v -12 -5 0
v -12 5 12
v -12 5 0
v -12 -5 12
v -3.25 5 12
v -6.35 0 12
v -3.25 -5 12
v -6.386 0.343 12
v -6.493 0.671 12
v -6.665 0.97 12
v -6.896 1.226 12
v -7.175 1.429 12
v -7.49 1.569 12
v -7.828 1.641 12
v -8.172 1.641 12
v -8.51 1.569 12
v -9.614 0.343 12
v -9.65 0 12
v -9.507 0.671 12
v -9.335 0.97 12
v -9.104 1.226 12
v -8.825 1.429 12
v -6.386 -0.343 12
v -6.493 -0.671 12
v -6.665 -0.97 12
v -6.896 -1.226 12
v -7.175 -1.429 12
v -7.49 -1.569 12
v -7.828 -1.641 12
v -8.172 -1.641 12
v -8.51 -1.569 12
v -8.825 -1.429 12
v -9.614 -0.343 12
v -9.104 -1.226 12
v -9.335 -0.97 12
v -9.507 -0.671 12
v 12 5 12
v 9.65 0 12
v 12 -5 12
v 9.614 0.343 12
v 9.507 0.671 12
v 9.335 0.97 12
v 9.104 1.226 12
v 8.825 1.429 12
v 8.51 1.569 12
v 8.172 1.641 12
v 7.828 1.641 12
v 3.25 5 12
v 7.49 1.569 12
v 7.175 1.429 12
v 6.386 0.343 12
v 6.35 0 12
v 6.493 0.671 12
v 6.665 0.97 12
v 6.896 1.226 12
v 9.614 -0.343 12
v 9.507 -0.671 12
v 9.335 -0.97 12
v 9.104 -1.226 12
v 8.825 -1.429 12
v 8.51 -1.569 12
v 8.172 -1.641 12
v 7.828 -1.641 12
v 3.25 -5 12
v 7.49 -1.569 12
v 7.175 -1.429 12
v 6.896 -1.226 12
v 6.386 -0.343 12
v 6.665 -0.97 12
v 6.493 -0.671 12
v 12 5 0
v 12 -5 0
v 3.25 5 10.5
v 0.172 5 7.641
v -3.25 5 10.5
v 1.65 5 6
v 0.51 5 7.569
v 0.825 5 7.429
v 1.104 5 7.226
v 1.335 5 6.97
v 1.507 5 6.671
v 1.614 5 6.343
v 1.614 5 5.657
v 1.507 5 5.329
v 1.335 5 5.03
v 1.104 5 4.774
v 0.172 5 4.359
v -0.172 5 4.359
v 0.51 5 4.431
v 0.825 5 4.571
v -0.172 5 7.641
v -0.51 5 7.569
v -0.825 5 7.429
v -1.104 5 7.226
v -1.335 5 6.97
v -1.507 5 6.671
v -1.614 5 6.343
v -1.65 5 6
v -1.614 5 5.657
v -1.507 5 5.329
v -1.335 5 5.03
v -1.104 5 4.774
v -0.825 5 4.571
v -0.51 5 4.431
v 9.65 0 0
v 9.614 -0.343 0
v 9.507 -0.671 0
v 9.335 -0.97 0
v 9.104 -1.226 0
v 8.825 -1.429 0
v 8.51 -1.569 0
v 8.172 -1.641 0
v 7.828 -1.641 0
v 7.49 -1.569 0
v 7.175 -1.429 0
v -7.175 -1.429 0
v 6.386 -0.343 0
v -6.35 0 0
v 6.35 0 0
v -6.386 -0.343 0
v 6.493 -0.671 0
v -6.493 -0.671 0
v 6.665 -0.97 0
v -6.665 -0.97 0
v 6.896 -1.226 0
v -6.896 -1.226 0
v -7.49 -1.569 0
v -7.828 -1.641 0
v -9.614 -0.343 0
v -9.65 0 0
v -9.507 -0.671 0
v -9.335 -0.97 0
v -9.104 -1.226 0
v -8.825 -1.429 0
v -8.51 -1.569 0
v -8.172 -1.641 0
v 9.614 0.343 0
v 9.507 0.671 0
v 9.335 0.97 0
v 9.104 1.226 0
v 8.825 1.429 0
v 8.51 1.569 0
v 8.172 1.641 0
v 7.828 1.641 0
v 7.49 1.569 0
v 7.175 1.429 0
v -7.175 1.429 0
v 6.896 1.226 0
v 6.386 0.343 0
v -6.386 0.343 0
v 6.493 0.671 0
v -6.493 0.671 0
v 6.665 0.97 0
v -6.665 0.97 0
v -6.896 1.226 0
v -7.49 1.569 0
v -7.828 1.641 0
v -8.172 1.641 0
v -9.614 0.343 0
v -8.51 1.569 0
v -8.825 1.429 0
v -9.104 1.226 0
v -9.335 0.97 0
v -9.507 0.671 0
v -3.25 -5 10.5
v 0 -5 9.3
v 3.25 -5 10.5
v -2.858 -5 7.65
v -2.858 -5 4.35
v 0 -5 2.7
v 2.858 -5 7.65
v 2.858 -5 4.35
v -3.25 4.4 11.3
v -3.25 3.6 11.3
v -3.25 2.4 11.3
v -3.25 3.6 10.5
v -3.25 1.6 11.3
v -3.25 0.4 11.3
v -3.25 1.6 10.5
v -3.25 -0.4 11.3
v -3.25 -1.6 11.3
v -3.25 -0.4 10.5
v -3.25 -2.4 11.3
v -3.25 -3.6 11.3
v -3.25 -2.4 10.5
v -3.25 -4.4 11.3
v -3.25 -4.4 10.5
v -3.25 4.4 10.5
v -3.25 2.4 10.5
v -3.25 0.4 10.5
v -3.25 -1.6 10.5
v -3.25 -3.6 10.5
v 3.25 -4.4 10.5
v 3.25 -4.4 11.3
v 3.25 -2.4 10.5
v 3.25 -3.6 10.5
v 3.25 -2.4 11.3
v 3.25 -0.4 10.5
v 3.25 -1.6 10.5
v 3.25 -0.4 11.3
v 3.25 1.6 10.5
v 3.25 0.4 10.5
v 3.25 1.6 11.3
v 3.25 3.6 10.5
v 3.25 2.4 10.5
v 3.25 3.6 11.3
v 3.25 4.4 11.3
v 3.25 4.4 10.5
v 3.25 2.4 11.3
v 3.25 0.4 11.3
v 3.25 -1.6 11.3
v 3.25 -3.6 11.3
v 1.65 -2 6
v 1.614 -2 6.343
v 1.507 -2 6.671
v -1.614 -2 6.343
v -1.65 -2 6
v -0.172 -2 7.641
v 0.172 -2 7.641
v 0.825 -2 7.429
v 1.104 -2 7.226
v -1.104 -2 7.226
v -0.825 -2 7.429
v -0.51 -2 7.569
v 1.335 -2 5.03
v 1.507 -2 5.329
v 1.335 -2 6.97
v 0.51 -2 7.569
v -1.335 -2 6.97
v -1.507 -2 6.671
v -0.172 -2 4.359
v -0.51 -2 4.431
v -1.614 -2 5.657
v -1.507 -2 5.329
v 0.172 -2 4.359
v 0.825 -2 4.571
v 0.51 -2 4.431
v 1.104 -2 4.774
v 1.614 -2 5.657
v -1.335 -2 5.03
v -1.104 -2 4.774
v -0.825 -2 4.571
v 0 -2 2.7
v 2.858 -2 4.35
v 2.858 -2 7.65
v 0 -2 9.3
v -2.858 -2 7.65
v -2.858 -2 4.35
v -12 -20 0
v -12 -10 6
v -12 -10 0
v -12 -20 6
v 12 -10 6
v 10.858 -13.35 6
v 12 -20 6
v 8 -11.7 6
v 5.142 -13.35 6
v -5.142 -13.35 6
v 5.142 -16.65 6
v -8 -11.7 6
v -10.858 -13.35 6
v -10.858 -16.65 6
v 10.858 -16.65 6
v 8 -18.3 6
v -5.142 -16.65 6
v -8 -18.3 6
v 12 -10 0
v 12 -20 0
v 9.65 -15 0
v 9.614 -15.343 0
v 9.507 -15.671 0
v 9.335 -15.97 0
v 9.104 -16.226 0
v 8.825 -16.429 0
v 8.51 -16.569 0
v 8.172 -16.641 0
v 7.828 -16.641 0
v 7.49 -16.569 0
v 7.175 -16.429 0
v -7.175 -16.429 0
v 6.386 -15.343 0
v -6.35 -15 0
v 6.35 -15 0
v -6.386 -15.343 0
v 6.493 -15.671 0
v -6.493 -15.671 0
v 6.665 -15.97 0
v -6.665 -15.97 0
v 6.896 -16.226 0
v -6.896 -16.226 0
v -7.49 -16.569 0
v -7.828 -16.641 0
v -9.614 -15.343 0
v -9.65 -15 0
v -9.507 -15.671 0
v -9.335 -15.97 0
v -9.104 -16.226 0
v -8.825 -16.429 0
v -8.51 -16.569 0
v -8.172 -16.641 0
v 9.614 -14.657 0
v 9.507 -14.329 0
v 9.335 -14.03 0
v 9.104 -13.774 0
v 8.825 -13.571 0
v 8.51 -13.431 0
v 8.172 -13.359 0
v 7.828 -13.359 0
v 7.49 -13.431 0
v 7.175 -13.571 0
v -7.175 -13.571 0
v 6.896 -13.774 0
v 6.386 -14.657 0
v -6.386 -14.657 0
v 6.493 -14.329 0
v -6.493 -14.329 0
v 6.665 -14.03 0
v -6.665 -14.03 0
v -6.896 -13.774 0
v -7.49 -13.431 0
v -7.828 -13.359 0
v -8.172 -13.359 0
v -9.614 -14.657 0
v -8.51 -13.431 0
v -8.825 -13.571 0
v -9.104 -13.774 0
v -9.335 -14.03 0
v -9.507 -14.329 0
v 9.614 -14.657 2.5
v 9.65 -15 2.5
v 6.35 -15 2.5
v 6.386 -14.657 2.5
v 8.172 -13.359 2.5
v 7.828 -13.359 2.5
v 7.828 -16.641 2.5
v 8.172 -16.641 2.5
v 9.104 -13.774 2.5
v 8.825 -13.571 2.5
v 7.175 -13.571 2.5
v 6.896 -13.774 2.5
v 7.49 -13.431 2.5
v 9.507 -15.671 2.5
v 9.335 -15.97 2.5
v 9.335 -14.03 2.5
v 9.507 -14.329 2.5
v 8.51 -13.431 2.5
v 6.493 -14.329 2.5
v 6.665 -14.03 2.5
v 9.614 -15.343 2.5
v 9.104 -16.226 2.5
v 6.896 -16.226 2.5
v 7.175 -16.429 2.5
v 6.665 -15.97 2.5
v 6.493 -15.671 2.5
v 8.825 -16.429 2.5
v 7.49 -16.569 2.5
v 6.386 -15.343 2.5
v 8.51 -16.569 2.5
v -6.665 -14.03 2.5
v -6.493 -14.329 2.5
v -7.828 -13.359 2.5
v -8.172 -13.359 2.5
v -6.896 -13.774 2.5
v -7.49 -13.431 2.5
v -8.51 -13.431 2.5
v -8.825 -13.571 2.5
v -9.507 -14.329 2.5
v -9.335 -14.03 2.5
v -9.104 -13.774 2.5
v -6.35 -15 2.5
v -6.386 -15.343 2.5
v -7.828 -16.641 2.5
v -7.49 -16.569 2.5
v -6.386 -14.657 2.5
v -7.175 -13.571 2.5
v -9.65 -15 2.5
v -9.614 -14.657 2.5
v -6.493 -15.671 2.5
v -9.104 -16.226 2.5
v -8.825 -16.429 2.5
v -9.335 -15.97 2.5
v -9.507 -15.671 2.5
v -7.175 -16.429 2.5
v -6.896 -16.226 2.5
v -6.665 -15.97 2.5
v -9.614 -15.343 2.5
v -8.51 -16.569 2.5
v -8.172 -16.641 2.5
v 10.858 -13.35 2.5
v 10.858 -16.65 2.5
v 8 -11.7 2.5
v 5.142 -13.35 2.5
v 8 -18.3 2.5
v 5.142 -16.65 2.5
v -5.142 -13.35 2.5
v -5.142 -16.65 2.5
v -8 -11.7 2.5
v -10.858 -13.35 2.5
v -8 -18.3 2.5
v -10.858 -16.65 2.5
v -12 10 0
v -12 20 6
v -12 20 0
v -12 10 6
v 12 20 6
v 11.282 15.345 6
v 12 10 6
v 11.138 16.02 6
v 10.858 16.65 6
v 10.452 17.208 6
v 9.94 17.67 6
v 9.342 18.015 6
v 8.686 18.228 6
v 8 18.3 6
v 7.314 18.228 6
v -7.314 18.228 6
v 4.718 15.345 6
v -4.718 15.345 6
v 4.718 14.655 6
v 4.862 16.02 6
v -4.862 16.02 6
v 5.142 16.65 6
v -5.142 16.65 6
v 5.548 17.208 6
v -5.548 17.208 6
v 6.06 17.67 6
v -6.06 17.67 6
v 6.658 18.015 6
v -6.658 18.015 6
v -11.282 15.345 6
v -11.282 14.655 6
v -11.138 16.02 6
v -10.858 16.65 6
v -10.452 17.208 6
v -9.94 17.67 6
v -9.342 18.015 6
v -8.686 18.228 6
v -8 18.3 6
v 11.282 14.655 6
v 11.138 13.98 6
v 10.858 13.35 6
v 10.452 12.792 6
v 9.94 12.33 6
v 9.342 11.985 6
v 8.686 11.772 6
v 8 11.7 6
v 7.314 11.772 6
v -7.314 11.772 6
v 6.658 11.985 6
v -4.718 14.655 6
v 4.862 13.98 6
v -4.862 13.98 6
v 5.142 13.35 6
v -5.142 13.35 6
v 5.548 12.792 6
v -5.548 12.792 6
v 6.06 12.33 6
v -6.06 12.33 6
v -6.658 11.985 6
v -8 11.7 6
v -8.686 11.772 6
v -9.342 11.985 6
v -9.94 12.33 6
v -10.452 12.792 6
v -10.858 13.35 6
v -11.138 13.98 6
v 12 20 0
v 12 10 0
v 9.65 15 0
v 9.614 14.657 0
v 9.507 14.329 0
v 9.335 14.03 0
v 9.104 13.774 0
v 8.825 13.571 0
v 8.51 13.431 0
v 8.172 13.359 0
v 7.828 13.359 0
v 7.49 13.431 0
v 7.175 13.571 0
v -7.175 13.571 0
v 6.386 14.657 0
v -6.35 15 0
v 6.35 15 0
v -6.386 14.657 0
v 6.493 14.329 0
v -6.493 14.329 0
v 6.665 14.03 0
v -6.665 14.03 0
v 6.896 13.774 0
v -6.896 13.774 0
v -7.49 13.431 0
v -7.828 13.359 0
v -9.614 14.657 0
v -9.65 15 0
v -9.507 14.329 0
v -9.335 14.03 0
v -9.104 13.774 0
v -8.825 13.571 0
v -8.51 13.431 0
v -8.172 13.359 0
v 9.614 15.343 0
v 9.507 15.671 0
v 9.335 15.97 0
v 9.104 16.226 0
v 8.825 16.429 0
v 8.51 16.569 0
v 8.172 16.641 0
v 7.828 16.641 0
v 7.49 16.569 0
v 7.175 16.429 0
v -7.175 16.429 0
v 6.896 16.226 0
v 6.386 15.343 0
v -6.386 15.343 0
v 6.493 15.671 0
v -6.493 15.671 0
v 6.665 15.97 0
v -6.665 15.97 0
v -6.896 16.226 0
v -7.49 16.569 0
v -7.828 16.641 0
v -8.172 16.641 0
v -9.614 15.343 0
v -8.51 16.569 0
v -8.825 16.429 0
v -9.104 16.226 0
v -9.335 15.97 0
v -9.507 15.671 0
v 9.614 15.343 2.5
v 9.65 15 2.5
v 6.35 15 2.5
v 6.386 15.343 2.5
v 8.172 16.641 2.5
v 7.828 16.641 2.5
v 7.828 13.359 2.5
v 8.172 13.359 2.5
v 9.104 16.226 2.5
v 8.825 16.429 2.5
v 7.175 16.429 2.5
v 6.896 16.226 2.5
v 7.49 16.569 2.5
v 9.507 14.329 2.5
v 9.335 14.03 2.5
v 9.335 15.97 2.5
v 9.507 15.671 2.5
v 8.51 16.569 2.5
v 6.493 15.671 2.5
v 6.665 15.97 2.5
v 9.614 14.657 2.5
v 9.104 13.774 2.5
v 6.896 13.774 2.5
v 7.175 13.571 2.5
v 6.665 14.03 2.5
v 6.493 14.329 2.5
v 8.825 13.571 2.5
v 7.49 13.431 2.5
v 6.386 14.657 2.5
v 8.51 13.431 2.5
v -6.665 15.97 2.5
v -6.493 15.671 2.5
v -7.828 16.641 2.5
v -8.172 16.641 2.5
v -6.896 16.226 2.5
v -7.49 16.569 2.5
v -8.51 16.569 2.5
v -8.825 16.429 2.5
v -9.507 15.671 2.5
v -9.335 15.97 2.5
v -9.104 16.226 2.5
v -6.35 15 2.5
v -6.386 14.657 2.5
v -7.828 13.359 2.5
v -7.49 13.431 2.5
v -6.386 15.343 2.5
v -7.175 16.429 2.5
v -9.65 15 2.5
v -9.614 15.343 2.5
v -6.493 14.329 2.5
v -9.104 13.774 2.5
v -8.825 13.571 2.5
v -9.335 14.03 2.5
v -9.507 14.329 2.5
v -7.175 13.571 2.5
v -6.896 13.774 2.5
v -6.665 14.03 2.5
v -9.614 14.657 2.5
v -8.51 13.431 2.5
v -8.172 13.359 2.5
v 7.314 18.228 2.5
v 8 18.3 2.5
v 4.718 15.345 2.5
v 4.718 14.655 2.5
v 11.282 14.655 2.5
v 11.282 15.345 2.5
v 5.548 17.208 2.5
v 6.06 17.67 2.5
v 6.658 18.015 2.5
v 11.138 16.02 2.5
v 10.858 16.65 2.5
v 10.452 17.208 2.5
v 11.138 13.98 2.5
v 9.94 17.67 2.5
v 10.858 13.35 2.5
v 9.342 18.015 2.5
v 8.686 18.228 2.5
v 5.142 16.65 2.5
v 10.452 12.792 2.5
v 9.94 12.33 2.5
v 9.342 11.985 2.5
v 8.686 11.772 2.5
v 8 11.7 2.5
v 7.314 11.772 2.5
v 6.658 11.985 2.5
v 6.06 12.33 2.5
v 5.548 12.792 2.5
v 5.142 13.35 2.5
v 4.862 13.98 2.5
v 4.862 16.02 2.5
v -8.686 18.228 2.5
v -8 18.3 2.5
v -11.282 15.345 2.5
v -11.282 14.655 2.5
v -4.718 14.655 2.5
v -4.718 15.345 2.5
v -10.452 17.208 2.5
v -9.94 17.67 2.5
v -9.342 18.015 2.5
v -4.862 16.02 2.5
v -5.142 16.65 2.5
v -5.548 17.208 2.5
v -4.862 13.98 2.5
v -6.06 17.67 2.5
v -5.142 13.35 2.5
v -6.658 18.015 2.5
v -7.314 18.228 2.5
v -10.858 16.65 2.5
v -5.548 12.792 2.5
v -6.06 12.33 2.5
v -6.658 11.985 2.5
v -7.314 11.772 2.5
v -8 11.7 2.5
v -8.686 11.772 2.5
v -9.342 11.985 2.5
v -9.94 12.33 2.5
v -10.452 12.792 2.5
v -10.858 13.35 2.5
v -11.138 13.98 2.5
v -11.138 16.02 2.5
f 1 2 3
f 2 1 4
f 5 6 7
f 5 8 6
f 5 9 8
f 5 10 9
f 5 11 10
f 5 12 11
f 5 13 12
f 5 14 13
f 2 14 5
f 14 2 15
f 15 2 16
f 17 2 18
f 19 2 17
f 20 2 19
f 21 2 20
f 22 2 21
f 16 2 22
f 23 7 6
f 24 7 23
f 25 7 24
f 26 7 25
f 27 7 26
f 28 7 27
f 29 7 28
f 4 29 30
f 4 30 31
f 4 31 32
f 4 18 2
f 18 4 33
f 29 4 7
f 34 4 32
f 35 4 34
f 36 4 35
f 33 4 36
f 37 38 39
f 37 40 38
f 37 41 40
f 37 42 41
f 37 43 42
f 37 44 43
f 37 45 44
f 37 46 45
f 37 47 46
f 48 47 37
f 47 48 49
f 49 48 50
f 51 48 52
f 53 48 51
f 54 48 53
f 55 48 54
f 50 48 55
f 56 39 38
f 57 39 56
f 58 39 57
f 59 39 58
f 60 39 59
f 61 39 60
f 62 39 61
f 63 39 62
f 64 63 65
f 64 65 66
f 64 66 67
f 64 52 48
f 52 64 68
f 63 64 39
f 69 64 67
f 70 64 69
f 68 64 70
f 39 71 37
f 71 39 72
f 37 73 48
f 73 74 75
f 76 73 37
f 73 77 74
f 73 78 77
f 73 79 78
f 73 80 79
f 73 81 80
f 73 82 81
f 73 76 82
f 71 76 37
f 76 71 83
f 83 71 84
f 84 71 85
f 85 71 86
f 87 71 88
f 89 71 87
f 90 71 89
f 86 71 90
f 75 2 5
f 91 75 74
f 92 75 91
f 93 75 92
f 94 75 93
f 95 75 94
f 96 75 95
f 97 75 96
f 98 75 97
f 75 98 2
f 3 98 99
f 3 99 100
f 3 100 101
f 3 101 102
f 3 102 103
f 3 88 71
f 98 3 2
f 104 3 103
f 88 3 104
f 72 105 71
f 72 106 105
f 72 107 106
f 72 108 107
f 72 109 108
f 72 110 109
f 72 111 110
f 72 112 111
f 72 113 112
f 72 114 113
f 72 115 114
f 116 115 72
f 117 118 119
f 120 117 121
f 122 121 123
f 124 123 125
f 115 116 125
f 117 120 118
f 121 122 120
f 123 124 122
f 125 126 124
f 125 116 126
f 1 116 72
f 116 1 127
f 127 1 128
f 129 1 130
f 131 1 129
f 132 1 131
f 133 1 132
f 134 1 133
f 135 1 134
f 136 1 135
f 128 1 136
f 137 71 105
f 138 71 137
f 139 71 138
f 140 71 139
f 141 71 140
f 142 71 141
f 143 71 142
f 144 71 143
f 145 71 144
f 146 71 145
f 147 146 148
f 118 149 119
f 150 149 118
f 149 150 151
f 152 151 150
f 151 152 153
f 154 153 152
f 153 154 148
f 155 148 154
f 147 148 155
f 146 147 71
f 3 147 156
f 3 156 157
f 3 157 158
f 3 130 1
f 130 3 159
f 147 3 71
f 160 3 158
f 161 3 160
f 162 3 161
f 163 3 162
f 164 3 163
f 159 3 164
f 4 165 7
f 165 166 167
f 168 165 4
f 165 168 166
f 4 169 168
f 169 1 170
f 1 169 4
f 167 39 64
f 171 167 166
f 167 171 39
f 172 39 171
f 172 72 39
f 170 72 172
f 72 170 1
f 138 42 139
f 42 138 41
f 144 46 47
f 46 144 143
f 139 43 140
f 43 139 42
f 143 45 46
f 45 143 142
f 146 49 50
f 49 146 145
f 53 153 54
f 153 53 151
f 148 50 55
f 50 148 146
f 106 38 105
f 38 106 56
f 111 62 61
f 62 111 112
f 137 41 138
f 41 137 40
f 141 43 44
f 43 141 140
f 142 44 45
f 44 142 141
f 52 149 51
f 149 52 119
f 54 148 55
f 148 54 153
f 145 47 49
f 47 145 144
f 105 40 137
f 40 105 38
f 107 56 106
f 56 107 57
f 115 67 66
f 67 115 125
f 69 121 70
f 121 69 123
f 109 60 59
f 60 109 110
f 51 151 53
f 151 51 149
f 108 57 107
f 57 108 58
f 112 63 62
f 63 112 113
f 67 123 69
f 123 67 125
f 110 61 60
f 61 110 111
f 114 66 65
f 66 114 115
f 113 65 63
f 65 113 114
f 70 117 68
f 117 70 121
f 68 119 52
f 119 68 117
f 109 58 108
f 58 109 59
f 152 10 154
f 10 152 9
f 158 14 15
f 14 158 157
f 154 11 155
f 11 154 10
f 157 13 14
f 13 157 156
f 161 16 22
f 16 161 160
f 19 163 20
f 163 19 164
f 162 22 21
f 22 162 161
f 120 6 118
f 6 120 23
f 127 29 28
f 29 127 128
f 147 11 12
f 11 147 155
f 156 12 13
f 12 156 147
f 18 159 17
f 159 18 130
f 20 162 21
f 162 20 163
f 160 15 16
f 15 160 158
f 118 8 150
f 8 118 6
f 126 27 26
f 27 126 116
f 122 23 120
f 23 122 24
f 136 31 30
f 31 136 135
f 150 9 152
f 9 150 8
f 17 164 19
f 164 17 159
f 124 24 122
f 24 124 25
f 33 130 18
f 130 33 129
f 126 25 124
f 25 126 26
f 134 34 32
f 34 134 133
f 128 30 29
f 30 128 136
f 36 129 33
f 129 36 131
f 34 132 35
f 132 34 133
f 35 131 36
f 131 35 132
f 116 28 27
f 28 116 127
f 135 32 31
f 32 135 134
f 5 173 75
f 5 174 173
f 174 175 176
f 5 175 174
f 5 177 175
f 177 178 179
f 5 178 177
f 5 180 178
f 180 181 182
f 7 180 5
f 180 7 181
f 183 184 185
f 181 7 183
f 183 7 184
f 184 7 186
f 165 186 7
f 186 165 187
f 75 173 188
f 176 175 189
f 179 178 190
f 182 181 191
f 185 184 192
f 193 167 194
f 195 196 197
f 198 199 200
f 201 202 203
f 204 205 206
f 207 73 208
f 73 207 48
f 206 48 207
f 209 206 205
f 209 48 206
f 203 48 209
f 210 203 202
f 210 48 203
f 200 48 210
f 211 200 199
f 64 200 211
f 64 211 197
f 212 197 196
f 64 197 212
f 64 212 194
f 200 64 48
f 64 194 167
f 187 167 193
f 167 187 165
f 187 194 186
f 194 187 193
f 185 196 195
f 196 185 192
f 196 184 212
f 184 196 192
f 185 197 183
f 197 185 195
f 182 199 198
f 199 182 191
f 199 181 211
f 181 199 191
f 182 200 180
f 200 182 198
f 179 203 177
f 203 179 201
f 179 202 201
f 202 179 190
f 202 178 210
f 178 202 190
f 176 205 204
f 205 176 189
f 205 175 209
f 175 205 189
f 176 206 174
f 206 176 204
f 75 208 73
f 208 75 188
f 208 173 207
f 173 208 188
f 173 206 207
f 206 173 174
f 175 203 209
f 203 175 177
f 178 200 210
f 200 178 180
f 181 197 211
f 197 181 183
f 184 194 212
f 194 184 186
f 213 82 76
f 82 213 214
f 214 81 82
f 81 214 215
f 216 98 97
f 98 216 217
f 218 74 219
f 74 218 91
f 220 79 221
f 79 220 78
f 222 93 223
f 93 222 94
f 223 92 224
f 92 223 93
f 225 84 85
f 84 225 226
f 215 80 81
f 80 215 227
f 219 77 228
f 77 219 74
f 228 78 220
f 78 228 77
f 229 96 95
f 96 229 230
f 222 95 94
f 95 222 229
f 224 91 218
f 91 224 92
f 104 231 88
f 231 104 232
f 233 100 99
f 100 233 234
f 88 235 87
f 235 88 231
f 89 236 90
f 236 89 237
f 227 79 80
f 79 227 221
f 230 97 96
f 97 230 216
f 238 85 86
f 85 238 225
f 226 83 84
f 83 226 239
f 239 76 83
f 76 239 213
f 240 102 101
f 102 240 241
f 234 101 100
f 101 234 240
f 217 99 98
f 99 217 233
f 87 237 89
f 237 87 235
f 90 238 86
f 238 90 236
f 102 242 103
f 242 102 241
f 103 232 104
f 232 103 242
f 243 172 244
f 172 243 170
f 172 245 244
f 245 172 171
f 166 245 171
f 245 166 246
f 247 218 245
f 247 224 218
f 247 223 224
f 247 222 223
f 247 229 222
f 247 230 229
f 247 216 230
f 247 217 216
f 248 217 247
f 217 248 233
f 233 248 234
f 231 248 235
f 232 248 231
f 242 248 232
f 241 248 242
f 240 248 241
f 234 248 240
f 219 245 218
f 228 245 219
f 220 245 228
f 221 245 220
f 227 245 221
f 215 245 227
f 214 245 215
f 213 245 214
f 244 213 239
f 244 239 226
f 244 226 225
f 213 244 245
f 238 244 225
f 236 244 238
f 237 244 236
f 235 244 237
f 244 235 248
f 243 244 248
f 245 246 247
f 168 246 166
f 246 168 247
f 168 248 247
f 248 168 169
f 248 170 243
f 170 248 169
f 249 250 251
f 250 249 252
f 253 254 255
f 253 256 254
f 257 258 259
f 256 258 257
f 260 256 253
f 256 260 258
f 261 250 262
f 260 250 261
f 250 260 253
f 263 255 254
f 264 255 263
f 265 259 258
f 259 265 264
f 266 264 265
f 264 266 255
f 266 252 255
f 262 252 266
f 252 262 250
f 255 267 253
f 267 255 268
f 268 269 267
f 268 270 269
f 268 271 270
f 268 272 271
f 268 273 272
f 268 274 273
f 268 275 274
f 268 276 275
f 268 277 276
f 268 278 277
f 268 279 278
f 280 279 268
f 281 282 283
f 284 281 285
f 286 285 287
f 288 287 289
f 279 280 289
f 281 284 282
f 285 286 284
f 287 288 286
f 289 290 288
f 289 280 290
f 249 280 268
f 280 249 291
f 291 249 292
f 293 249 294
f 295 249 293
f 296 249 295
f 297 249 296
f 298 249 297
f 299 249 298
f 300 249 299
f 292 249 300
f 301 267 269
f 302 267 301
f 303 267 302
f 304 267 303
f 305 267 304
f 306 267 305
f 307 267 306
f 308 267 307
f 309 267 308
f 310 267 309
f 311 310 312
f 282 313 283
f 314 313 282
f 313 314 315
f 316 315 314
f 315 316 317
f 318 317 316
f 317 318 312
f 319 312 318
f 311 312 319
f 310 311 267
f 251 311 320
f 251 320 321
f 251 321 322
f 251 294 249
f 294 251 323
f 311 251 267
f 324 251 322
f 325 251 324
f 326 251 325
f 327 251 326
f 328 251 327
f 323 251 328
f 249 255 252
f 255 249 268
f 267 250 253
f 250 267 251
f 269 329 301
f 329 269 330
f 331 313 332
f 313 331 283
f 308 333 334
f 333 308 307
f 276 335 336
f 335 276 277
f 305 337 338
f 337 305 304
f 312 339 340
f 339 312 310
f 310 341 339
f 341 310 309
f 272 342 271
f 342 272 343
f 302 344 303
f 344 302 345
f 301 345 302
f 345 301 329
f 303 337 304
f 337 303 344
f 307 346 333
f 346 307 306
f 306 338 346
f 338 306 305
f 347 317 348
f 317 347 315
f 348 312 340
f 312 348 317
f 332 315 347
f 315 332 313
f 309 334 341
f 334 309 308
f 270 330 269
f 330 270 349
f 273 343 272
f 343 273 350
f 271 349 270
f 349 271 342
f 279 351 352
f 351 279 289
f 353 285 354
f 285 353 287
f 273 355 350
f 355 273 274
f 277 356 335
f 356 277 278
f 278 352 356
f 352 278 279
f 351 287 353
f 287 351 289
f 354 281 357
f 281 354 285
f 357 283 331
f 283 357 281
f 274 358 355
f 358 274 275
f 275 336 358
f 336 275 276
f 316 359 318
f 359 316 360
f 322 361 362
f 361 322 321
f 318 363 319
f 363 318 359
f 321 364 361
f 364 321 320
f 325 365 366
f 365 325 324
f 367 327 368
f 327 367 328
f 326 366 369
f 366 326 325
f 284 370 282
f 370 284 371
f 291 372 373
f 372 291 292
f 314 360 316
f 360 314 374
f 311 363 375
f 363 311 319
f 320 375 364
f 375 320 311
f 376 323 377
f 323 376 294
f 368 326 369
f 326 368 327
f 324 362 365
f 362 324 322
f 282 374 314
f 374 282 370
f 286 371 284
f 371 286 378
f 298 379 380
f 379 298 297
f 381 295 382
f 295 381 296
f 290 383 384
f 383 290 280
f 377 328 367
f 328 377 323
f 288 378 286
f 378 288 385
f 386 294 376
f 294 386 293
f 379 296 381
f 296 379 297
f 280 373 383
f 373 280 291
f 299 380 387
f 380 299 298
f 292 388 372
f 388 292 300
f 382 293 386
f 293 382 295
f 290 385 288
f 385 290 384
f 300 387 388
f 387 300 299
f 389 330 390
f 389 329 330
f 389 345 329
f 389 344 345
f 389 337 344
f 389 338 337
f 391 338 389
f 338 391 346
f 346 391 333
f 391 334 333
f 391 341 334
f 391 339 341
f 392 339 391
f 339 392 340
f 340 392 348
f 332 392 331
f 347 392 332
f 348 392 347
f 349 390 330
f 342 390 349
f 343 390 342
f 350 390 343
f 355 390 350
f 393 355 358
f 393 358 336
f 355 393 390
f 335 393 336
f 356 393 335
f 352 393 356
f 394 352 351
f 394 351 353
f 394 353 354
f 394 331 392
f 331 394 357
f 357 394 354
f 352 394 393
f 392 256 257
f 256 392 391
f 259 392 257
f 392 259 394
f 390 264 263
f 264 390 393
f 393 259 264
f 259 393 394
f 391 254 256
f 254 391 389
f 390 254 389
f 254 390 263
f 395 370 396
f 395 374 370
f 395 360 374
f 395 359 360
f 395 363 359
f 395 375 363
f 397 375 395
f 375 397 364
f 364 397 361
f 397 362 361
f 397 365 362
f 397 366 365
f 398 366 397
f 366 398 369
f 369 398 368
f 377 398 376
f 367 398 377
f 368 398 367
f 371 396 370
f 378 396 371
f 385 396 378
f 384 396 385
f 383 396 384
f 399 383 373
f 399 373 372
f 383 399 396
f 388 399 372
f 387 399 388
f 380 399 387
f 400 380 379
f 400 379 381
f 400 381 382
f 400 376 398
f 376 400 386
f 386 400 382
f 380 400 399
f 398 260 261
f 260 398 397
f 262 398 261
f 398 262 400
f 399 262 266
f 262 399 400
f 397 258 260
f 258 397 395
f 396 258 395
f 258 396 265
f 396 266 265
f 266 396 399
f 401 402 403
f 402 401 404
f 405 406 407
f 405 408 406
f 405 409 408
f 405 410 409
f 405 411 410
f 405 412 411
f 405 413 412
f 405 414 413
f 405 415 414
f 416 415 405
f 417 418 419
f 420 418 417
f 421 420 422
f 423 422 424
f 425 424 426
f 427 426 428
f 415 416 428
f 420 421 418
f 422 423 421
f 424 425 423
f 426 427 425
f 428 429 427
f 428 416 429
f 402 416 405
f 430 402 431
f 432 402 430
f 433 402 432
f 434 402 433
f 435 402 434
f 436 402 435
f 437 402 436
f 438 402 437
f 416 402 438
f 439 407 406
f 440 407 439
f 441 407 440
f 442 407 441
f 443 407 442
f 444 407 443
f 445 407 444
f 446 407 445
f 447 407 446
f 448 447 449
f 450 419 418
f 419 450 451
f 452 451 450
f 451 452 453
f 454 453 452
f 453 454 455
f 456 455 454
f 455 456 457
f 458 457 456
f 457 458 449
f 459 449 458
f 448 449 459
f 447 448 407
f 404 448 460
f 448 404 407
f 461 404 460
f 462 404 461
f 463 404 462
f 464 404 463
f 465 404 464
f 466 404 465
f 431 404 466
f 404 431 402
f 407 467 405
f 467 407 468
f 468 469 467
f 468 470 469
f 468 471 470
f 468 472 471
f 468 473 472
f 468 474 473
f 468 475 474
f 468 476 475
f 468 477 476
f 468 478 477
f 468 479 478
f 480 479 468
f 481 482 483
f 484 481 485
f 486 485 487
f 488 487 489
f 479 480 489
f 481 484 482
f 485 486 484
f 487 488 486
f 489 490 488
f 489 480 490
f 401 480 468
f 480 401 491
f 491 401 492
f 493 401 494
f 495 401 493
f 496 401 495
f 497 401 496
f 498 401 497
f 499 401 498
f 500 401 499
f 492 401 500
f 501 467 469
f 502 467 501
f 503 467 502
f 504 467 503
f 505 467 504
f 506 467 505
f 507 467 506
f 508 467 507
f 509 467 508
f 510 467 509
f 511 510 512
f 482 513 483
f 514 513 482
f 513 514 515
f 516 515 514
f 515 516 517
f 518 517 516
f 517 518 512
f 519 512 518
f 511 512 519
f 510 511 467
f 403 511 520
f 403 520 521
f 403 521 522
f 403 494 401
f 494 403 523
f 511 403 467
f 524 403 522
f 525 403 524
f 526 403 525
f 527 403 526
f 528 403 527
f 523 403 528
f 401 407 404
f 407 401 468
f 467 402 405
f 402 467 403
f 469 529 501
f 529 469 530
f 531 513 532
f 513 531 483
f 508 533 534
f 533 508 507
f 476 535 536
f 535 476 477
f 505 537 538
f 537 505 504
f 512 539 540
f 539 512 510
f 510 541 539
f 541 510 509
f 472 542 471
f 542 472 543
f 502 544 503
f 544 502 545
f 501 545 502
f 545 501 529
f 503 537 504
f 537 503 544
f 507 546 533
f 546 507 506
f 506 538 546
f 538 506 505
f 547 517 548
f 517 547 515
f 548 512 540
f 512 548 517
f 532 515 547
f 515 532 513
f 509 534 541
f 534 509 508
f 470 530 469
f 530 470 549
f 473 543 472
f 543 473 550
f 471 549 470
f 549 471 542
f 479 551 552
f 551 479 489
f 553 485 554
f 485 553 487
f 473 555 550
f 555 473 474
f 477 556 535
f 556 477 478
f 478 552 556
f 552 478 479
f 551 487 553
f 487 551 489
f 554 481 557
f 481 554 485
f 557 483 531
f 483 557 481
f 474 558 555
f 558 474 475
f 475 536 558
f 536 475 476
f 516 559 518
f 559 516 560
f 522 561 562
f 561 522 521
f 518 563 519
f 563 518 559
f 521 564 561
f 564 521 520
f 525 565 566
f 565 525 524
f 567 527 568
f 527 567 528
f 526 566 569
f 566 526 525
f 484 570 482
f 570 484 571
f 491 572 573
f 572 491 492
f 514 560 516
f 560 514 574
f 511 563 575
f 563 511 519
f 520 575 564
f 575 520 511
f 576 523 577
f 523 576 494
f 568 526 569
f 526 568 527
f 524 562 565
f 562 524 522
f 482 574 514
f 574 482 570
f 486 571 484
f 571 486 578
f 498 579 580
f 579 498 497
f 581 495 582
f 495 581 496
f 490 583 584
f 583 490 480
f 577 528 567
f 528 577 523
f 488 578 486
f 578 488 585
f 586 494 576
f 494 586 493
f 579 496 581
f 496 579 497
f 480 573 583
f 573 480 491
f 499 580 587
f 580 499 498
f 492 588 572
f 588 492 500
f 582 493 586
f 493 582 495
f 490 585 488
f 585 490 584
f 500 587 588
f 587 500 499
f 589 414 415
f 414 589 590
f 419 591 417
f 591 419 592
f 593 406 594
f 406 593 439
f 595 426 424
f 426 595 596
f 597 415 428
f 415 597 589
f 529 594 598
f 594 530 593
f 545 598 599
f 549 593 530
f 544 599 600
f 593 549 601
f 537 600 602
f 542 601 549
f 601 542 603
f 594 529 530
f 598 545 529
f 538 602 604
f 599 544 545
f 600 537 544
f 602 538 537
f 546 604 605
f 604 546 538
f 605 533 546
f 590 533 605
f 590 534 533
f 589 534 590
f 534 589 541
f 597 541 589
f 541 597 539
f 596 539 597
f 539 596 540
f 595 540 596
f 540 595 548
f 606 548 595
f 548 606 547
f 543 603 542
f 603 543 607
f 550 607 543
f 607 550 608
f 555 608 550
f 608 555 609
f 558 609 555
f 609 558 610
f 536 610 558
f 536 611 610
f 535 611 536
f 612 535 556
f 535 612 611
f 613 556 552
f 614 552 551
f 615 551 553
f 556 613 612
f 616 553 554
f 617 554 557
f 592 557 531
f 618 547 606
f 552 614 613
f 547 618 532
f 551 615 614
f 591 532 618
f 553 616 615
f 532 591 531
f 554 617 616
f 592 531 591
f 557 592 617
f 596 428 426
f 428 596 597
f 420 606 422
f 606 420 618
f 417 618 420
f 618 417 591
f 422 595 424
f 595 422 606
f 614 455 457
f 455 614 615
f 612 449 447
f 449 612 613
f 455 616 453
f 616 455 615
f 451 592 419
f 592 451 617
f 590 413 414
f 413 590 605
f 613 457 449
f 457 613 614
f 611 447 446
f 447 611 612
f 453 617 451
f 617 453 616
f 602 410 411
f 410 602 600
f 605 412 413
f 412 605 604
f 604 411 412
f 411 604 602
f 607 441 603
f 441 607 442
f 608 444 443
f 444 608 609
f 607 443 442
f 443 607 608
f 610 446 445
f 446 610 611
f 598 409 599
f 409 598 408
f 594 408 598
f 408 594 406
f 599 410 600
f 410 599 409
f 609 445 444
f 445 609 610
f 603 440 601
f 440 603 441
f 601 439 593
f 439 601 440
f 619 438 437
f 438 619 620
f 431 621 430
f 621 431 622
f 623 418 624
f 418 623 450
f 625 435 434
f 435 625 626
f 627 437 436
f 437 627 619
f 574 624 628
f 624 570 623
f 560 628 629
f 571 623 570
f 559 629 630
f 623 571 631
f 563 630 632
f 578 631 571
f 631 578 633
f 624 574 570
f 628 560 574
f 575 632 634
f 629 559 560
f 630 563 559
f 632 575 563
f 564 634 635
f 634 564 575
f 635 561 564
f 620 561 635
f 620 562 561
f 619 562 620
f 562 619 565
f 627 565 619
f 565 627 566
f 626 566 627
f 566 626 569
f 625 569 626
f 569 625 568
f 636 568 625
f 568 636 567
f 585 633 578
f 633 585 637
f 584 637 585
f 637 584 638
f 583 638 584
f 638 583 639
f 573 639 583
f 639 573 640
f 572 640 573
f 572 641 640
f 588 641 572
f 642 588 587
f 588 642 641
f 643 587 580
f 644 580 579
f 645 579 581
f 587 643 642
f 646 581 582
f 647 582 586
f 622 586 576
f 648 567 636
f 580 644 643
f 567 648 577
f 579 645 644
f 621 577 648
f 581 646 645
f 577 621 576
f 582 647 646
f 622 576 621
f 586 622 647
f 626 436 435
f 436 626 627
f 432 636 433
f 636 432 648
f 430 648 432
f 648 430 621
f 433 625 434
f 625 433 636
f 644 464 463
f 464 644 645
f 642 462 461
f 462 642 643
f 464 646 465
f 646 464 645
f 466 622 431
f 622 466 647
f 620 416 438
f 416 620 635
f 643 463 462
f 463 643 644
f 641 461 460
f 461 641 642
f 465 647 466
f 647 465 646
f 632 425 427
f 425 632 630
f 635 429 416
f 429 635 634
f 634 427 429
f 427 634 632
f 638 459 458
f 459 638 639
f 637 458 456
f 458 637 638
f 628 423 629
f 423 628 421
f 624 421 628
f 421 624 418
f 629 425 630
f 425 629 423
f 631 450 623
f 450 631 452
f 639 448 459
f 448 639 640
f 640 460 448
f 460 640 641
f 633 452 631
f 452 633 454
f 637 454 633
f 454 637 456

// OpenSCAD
// file: config.scad
/**
 * Глобальный конфигурационный файл
 */
// качество цилиндров
$fn=30;

// избегание совпадения граней
DELTA=0.1;

// толщина рамы
FRAME=15;
// main file
include <config.scad>

w1=24;
h1=10;
a=4;
b=6.5;
hr1=0.7;
hr2=1.5;
xr1=1.2;
delta=1.1;
r0=1.5*delta;

module beltclamp_base(z) {
	difference() {
		cube([w1,h1,z],true);
		translate([w1/2-a,0,-z/2-0.5]) cylinder(z+1,r=r0);
		translate([-w1/2+a,0,-z/2-0.5]) cylinder(z+1,r=r0);
    }
}

module beltclamp_top(z) {
	translate([0,0,z/2])
	difference() {
        beltclamp_base(z);
		translate([w1/2-a,0,-0.5]) rotate([0,0,90]) cylinder(5,r=6.6/2);
		translate([-w1/2+a,0,-0.5]) rotate([0,0,90]) cylinder(5,r=6.6/2);
	}
}

module beltclamp_nut(z) {
	translate([0,0,z/2])
	difference() {
        beltclamp_base(z);
		translate([w1/2-a,0,-0.5]) rotate([0,0,90]) cylinder(5,r=6.6/2,$fn=6);
		translate([-w1/2+a,0,-0.5]) rotate([0,0,90]) cylinder(5,r=6.6/2,$fn=6);
    }
}

module beltclamp_belt(z) {
	translate([0,0,z/2])
	difference() {
        beltclamp_base(z);
		translate([0,0,z-hr1]) cube([b,10,z],true);
		for (i=[0:5]) translate([0,-5+i*2,z-hr2]) cube([b,xr1,z],true);
		translate([0,10,0]) rotate([90,0,0]) cylinder(20,r=r0);
		translate([0,-2,0]) rotate([90,90,0]) cylinder(5,r=6.6/2,$fn=6);
    }
}

//#translate([8,0,-5]) cylinder(25,r=r0);
module stack(hh) {
	beltclamp_belt(9+hh);
	translate([0,0,9+hh]) beltclamp_nut(6);
	translate([0,0,-hh]) mirror([0,0,1]) beltclamp_top(6);
}

module print(hh) {
	beltclamp_belt(9+hh);
	translate([0,-h1-5,0]) beltclamp_nut(6);
	translate([0,h1+5,0]) beltclamp_top(6);
}

// for freecad positioning
// 3 - толщина стола
//stack(3);

// for printing
// 3 - толщина стола
module table_part02() {
    print(3);
}

table_part02();
